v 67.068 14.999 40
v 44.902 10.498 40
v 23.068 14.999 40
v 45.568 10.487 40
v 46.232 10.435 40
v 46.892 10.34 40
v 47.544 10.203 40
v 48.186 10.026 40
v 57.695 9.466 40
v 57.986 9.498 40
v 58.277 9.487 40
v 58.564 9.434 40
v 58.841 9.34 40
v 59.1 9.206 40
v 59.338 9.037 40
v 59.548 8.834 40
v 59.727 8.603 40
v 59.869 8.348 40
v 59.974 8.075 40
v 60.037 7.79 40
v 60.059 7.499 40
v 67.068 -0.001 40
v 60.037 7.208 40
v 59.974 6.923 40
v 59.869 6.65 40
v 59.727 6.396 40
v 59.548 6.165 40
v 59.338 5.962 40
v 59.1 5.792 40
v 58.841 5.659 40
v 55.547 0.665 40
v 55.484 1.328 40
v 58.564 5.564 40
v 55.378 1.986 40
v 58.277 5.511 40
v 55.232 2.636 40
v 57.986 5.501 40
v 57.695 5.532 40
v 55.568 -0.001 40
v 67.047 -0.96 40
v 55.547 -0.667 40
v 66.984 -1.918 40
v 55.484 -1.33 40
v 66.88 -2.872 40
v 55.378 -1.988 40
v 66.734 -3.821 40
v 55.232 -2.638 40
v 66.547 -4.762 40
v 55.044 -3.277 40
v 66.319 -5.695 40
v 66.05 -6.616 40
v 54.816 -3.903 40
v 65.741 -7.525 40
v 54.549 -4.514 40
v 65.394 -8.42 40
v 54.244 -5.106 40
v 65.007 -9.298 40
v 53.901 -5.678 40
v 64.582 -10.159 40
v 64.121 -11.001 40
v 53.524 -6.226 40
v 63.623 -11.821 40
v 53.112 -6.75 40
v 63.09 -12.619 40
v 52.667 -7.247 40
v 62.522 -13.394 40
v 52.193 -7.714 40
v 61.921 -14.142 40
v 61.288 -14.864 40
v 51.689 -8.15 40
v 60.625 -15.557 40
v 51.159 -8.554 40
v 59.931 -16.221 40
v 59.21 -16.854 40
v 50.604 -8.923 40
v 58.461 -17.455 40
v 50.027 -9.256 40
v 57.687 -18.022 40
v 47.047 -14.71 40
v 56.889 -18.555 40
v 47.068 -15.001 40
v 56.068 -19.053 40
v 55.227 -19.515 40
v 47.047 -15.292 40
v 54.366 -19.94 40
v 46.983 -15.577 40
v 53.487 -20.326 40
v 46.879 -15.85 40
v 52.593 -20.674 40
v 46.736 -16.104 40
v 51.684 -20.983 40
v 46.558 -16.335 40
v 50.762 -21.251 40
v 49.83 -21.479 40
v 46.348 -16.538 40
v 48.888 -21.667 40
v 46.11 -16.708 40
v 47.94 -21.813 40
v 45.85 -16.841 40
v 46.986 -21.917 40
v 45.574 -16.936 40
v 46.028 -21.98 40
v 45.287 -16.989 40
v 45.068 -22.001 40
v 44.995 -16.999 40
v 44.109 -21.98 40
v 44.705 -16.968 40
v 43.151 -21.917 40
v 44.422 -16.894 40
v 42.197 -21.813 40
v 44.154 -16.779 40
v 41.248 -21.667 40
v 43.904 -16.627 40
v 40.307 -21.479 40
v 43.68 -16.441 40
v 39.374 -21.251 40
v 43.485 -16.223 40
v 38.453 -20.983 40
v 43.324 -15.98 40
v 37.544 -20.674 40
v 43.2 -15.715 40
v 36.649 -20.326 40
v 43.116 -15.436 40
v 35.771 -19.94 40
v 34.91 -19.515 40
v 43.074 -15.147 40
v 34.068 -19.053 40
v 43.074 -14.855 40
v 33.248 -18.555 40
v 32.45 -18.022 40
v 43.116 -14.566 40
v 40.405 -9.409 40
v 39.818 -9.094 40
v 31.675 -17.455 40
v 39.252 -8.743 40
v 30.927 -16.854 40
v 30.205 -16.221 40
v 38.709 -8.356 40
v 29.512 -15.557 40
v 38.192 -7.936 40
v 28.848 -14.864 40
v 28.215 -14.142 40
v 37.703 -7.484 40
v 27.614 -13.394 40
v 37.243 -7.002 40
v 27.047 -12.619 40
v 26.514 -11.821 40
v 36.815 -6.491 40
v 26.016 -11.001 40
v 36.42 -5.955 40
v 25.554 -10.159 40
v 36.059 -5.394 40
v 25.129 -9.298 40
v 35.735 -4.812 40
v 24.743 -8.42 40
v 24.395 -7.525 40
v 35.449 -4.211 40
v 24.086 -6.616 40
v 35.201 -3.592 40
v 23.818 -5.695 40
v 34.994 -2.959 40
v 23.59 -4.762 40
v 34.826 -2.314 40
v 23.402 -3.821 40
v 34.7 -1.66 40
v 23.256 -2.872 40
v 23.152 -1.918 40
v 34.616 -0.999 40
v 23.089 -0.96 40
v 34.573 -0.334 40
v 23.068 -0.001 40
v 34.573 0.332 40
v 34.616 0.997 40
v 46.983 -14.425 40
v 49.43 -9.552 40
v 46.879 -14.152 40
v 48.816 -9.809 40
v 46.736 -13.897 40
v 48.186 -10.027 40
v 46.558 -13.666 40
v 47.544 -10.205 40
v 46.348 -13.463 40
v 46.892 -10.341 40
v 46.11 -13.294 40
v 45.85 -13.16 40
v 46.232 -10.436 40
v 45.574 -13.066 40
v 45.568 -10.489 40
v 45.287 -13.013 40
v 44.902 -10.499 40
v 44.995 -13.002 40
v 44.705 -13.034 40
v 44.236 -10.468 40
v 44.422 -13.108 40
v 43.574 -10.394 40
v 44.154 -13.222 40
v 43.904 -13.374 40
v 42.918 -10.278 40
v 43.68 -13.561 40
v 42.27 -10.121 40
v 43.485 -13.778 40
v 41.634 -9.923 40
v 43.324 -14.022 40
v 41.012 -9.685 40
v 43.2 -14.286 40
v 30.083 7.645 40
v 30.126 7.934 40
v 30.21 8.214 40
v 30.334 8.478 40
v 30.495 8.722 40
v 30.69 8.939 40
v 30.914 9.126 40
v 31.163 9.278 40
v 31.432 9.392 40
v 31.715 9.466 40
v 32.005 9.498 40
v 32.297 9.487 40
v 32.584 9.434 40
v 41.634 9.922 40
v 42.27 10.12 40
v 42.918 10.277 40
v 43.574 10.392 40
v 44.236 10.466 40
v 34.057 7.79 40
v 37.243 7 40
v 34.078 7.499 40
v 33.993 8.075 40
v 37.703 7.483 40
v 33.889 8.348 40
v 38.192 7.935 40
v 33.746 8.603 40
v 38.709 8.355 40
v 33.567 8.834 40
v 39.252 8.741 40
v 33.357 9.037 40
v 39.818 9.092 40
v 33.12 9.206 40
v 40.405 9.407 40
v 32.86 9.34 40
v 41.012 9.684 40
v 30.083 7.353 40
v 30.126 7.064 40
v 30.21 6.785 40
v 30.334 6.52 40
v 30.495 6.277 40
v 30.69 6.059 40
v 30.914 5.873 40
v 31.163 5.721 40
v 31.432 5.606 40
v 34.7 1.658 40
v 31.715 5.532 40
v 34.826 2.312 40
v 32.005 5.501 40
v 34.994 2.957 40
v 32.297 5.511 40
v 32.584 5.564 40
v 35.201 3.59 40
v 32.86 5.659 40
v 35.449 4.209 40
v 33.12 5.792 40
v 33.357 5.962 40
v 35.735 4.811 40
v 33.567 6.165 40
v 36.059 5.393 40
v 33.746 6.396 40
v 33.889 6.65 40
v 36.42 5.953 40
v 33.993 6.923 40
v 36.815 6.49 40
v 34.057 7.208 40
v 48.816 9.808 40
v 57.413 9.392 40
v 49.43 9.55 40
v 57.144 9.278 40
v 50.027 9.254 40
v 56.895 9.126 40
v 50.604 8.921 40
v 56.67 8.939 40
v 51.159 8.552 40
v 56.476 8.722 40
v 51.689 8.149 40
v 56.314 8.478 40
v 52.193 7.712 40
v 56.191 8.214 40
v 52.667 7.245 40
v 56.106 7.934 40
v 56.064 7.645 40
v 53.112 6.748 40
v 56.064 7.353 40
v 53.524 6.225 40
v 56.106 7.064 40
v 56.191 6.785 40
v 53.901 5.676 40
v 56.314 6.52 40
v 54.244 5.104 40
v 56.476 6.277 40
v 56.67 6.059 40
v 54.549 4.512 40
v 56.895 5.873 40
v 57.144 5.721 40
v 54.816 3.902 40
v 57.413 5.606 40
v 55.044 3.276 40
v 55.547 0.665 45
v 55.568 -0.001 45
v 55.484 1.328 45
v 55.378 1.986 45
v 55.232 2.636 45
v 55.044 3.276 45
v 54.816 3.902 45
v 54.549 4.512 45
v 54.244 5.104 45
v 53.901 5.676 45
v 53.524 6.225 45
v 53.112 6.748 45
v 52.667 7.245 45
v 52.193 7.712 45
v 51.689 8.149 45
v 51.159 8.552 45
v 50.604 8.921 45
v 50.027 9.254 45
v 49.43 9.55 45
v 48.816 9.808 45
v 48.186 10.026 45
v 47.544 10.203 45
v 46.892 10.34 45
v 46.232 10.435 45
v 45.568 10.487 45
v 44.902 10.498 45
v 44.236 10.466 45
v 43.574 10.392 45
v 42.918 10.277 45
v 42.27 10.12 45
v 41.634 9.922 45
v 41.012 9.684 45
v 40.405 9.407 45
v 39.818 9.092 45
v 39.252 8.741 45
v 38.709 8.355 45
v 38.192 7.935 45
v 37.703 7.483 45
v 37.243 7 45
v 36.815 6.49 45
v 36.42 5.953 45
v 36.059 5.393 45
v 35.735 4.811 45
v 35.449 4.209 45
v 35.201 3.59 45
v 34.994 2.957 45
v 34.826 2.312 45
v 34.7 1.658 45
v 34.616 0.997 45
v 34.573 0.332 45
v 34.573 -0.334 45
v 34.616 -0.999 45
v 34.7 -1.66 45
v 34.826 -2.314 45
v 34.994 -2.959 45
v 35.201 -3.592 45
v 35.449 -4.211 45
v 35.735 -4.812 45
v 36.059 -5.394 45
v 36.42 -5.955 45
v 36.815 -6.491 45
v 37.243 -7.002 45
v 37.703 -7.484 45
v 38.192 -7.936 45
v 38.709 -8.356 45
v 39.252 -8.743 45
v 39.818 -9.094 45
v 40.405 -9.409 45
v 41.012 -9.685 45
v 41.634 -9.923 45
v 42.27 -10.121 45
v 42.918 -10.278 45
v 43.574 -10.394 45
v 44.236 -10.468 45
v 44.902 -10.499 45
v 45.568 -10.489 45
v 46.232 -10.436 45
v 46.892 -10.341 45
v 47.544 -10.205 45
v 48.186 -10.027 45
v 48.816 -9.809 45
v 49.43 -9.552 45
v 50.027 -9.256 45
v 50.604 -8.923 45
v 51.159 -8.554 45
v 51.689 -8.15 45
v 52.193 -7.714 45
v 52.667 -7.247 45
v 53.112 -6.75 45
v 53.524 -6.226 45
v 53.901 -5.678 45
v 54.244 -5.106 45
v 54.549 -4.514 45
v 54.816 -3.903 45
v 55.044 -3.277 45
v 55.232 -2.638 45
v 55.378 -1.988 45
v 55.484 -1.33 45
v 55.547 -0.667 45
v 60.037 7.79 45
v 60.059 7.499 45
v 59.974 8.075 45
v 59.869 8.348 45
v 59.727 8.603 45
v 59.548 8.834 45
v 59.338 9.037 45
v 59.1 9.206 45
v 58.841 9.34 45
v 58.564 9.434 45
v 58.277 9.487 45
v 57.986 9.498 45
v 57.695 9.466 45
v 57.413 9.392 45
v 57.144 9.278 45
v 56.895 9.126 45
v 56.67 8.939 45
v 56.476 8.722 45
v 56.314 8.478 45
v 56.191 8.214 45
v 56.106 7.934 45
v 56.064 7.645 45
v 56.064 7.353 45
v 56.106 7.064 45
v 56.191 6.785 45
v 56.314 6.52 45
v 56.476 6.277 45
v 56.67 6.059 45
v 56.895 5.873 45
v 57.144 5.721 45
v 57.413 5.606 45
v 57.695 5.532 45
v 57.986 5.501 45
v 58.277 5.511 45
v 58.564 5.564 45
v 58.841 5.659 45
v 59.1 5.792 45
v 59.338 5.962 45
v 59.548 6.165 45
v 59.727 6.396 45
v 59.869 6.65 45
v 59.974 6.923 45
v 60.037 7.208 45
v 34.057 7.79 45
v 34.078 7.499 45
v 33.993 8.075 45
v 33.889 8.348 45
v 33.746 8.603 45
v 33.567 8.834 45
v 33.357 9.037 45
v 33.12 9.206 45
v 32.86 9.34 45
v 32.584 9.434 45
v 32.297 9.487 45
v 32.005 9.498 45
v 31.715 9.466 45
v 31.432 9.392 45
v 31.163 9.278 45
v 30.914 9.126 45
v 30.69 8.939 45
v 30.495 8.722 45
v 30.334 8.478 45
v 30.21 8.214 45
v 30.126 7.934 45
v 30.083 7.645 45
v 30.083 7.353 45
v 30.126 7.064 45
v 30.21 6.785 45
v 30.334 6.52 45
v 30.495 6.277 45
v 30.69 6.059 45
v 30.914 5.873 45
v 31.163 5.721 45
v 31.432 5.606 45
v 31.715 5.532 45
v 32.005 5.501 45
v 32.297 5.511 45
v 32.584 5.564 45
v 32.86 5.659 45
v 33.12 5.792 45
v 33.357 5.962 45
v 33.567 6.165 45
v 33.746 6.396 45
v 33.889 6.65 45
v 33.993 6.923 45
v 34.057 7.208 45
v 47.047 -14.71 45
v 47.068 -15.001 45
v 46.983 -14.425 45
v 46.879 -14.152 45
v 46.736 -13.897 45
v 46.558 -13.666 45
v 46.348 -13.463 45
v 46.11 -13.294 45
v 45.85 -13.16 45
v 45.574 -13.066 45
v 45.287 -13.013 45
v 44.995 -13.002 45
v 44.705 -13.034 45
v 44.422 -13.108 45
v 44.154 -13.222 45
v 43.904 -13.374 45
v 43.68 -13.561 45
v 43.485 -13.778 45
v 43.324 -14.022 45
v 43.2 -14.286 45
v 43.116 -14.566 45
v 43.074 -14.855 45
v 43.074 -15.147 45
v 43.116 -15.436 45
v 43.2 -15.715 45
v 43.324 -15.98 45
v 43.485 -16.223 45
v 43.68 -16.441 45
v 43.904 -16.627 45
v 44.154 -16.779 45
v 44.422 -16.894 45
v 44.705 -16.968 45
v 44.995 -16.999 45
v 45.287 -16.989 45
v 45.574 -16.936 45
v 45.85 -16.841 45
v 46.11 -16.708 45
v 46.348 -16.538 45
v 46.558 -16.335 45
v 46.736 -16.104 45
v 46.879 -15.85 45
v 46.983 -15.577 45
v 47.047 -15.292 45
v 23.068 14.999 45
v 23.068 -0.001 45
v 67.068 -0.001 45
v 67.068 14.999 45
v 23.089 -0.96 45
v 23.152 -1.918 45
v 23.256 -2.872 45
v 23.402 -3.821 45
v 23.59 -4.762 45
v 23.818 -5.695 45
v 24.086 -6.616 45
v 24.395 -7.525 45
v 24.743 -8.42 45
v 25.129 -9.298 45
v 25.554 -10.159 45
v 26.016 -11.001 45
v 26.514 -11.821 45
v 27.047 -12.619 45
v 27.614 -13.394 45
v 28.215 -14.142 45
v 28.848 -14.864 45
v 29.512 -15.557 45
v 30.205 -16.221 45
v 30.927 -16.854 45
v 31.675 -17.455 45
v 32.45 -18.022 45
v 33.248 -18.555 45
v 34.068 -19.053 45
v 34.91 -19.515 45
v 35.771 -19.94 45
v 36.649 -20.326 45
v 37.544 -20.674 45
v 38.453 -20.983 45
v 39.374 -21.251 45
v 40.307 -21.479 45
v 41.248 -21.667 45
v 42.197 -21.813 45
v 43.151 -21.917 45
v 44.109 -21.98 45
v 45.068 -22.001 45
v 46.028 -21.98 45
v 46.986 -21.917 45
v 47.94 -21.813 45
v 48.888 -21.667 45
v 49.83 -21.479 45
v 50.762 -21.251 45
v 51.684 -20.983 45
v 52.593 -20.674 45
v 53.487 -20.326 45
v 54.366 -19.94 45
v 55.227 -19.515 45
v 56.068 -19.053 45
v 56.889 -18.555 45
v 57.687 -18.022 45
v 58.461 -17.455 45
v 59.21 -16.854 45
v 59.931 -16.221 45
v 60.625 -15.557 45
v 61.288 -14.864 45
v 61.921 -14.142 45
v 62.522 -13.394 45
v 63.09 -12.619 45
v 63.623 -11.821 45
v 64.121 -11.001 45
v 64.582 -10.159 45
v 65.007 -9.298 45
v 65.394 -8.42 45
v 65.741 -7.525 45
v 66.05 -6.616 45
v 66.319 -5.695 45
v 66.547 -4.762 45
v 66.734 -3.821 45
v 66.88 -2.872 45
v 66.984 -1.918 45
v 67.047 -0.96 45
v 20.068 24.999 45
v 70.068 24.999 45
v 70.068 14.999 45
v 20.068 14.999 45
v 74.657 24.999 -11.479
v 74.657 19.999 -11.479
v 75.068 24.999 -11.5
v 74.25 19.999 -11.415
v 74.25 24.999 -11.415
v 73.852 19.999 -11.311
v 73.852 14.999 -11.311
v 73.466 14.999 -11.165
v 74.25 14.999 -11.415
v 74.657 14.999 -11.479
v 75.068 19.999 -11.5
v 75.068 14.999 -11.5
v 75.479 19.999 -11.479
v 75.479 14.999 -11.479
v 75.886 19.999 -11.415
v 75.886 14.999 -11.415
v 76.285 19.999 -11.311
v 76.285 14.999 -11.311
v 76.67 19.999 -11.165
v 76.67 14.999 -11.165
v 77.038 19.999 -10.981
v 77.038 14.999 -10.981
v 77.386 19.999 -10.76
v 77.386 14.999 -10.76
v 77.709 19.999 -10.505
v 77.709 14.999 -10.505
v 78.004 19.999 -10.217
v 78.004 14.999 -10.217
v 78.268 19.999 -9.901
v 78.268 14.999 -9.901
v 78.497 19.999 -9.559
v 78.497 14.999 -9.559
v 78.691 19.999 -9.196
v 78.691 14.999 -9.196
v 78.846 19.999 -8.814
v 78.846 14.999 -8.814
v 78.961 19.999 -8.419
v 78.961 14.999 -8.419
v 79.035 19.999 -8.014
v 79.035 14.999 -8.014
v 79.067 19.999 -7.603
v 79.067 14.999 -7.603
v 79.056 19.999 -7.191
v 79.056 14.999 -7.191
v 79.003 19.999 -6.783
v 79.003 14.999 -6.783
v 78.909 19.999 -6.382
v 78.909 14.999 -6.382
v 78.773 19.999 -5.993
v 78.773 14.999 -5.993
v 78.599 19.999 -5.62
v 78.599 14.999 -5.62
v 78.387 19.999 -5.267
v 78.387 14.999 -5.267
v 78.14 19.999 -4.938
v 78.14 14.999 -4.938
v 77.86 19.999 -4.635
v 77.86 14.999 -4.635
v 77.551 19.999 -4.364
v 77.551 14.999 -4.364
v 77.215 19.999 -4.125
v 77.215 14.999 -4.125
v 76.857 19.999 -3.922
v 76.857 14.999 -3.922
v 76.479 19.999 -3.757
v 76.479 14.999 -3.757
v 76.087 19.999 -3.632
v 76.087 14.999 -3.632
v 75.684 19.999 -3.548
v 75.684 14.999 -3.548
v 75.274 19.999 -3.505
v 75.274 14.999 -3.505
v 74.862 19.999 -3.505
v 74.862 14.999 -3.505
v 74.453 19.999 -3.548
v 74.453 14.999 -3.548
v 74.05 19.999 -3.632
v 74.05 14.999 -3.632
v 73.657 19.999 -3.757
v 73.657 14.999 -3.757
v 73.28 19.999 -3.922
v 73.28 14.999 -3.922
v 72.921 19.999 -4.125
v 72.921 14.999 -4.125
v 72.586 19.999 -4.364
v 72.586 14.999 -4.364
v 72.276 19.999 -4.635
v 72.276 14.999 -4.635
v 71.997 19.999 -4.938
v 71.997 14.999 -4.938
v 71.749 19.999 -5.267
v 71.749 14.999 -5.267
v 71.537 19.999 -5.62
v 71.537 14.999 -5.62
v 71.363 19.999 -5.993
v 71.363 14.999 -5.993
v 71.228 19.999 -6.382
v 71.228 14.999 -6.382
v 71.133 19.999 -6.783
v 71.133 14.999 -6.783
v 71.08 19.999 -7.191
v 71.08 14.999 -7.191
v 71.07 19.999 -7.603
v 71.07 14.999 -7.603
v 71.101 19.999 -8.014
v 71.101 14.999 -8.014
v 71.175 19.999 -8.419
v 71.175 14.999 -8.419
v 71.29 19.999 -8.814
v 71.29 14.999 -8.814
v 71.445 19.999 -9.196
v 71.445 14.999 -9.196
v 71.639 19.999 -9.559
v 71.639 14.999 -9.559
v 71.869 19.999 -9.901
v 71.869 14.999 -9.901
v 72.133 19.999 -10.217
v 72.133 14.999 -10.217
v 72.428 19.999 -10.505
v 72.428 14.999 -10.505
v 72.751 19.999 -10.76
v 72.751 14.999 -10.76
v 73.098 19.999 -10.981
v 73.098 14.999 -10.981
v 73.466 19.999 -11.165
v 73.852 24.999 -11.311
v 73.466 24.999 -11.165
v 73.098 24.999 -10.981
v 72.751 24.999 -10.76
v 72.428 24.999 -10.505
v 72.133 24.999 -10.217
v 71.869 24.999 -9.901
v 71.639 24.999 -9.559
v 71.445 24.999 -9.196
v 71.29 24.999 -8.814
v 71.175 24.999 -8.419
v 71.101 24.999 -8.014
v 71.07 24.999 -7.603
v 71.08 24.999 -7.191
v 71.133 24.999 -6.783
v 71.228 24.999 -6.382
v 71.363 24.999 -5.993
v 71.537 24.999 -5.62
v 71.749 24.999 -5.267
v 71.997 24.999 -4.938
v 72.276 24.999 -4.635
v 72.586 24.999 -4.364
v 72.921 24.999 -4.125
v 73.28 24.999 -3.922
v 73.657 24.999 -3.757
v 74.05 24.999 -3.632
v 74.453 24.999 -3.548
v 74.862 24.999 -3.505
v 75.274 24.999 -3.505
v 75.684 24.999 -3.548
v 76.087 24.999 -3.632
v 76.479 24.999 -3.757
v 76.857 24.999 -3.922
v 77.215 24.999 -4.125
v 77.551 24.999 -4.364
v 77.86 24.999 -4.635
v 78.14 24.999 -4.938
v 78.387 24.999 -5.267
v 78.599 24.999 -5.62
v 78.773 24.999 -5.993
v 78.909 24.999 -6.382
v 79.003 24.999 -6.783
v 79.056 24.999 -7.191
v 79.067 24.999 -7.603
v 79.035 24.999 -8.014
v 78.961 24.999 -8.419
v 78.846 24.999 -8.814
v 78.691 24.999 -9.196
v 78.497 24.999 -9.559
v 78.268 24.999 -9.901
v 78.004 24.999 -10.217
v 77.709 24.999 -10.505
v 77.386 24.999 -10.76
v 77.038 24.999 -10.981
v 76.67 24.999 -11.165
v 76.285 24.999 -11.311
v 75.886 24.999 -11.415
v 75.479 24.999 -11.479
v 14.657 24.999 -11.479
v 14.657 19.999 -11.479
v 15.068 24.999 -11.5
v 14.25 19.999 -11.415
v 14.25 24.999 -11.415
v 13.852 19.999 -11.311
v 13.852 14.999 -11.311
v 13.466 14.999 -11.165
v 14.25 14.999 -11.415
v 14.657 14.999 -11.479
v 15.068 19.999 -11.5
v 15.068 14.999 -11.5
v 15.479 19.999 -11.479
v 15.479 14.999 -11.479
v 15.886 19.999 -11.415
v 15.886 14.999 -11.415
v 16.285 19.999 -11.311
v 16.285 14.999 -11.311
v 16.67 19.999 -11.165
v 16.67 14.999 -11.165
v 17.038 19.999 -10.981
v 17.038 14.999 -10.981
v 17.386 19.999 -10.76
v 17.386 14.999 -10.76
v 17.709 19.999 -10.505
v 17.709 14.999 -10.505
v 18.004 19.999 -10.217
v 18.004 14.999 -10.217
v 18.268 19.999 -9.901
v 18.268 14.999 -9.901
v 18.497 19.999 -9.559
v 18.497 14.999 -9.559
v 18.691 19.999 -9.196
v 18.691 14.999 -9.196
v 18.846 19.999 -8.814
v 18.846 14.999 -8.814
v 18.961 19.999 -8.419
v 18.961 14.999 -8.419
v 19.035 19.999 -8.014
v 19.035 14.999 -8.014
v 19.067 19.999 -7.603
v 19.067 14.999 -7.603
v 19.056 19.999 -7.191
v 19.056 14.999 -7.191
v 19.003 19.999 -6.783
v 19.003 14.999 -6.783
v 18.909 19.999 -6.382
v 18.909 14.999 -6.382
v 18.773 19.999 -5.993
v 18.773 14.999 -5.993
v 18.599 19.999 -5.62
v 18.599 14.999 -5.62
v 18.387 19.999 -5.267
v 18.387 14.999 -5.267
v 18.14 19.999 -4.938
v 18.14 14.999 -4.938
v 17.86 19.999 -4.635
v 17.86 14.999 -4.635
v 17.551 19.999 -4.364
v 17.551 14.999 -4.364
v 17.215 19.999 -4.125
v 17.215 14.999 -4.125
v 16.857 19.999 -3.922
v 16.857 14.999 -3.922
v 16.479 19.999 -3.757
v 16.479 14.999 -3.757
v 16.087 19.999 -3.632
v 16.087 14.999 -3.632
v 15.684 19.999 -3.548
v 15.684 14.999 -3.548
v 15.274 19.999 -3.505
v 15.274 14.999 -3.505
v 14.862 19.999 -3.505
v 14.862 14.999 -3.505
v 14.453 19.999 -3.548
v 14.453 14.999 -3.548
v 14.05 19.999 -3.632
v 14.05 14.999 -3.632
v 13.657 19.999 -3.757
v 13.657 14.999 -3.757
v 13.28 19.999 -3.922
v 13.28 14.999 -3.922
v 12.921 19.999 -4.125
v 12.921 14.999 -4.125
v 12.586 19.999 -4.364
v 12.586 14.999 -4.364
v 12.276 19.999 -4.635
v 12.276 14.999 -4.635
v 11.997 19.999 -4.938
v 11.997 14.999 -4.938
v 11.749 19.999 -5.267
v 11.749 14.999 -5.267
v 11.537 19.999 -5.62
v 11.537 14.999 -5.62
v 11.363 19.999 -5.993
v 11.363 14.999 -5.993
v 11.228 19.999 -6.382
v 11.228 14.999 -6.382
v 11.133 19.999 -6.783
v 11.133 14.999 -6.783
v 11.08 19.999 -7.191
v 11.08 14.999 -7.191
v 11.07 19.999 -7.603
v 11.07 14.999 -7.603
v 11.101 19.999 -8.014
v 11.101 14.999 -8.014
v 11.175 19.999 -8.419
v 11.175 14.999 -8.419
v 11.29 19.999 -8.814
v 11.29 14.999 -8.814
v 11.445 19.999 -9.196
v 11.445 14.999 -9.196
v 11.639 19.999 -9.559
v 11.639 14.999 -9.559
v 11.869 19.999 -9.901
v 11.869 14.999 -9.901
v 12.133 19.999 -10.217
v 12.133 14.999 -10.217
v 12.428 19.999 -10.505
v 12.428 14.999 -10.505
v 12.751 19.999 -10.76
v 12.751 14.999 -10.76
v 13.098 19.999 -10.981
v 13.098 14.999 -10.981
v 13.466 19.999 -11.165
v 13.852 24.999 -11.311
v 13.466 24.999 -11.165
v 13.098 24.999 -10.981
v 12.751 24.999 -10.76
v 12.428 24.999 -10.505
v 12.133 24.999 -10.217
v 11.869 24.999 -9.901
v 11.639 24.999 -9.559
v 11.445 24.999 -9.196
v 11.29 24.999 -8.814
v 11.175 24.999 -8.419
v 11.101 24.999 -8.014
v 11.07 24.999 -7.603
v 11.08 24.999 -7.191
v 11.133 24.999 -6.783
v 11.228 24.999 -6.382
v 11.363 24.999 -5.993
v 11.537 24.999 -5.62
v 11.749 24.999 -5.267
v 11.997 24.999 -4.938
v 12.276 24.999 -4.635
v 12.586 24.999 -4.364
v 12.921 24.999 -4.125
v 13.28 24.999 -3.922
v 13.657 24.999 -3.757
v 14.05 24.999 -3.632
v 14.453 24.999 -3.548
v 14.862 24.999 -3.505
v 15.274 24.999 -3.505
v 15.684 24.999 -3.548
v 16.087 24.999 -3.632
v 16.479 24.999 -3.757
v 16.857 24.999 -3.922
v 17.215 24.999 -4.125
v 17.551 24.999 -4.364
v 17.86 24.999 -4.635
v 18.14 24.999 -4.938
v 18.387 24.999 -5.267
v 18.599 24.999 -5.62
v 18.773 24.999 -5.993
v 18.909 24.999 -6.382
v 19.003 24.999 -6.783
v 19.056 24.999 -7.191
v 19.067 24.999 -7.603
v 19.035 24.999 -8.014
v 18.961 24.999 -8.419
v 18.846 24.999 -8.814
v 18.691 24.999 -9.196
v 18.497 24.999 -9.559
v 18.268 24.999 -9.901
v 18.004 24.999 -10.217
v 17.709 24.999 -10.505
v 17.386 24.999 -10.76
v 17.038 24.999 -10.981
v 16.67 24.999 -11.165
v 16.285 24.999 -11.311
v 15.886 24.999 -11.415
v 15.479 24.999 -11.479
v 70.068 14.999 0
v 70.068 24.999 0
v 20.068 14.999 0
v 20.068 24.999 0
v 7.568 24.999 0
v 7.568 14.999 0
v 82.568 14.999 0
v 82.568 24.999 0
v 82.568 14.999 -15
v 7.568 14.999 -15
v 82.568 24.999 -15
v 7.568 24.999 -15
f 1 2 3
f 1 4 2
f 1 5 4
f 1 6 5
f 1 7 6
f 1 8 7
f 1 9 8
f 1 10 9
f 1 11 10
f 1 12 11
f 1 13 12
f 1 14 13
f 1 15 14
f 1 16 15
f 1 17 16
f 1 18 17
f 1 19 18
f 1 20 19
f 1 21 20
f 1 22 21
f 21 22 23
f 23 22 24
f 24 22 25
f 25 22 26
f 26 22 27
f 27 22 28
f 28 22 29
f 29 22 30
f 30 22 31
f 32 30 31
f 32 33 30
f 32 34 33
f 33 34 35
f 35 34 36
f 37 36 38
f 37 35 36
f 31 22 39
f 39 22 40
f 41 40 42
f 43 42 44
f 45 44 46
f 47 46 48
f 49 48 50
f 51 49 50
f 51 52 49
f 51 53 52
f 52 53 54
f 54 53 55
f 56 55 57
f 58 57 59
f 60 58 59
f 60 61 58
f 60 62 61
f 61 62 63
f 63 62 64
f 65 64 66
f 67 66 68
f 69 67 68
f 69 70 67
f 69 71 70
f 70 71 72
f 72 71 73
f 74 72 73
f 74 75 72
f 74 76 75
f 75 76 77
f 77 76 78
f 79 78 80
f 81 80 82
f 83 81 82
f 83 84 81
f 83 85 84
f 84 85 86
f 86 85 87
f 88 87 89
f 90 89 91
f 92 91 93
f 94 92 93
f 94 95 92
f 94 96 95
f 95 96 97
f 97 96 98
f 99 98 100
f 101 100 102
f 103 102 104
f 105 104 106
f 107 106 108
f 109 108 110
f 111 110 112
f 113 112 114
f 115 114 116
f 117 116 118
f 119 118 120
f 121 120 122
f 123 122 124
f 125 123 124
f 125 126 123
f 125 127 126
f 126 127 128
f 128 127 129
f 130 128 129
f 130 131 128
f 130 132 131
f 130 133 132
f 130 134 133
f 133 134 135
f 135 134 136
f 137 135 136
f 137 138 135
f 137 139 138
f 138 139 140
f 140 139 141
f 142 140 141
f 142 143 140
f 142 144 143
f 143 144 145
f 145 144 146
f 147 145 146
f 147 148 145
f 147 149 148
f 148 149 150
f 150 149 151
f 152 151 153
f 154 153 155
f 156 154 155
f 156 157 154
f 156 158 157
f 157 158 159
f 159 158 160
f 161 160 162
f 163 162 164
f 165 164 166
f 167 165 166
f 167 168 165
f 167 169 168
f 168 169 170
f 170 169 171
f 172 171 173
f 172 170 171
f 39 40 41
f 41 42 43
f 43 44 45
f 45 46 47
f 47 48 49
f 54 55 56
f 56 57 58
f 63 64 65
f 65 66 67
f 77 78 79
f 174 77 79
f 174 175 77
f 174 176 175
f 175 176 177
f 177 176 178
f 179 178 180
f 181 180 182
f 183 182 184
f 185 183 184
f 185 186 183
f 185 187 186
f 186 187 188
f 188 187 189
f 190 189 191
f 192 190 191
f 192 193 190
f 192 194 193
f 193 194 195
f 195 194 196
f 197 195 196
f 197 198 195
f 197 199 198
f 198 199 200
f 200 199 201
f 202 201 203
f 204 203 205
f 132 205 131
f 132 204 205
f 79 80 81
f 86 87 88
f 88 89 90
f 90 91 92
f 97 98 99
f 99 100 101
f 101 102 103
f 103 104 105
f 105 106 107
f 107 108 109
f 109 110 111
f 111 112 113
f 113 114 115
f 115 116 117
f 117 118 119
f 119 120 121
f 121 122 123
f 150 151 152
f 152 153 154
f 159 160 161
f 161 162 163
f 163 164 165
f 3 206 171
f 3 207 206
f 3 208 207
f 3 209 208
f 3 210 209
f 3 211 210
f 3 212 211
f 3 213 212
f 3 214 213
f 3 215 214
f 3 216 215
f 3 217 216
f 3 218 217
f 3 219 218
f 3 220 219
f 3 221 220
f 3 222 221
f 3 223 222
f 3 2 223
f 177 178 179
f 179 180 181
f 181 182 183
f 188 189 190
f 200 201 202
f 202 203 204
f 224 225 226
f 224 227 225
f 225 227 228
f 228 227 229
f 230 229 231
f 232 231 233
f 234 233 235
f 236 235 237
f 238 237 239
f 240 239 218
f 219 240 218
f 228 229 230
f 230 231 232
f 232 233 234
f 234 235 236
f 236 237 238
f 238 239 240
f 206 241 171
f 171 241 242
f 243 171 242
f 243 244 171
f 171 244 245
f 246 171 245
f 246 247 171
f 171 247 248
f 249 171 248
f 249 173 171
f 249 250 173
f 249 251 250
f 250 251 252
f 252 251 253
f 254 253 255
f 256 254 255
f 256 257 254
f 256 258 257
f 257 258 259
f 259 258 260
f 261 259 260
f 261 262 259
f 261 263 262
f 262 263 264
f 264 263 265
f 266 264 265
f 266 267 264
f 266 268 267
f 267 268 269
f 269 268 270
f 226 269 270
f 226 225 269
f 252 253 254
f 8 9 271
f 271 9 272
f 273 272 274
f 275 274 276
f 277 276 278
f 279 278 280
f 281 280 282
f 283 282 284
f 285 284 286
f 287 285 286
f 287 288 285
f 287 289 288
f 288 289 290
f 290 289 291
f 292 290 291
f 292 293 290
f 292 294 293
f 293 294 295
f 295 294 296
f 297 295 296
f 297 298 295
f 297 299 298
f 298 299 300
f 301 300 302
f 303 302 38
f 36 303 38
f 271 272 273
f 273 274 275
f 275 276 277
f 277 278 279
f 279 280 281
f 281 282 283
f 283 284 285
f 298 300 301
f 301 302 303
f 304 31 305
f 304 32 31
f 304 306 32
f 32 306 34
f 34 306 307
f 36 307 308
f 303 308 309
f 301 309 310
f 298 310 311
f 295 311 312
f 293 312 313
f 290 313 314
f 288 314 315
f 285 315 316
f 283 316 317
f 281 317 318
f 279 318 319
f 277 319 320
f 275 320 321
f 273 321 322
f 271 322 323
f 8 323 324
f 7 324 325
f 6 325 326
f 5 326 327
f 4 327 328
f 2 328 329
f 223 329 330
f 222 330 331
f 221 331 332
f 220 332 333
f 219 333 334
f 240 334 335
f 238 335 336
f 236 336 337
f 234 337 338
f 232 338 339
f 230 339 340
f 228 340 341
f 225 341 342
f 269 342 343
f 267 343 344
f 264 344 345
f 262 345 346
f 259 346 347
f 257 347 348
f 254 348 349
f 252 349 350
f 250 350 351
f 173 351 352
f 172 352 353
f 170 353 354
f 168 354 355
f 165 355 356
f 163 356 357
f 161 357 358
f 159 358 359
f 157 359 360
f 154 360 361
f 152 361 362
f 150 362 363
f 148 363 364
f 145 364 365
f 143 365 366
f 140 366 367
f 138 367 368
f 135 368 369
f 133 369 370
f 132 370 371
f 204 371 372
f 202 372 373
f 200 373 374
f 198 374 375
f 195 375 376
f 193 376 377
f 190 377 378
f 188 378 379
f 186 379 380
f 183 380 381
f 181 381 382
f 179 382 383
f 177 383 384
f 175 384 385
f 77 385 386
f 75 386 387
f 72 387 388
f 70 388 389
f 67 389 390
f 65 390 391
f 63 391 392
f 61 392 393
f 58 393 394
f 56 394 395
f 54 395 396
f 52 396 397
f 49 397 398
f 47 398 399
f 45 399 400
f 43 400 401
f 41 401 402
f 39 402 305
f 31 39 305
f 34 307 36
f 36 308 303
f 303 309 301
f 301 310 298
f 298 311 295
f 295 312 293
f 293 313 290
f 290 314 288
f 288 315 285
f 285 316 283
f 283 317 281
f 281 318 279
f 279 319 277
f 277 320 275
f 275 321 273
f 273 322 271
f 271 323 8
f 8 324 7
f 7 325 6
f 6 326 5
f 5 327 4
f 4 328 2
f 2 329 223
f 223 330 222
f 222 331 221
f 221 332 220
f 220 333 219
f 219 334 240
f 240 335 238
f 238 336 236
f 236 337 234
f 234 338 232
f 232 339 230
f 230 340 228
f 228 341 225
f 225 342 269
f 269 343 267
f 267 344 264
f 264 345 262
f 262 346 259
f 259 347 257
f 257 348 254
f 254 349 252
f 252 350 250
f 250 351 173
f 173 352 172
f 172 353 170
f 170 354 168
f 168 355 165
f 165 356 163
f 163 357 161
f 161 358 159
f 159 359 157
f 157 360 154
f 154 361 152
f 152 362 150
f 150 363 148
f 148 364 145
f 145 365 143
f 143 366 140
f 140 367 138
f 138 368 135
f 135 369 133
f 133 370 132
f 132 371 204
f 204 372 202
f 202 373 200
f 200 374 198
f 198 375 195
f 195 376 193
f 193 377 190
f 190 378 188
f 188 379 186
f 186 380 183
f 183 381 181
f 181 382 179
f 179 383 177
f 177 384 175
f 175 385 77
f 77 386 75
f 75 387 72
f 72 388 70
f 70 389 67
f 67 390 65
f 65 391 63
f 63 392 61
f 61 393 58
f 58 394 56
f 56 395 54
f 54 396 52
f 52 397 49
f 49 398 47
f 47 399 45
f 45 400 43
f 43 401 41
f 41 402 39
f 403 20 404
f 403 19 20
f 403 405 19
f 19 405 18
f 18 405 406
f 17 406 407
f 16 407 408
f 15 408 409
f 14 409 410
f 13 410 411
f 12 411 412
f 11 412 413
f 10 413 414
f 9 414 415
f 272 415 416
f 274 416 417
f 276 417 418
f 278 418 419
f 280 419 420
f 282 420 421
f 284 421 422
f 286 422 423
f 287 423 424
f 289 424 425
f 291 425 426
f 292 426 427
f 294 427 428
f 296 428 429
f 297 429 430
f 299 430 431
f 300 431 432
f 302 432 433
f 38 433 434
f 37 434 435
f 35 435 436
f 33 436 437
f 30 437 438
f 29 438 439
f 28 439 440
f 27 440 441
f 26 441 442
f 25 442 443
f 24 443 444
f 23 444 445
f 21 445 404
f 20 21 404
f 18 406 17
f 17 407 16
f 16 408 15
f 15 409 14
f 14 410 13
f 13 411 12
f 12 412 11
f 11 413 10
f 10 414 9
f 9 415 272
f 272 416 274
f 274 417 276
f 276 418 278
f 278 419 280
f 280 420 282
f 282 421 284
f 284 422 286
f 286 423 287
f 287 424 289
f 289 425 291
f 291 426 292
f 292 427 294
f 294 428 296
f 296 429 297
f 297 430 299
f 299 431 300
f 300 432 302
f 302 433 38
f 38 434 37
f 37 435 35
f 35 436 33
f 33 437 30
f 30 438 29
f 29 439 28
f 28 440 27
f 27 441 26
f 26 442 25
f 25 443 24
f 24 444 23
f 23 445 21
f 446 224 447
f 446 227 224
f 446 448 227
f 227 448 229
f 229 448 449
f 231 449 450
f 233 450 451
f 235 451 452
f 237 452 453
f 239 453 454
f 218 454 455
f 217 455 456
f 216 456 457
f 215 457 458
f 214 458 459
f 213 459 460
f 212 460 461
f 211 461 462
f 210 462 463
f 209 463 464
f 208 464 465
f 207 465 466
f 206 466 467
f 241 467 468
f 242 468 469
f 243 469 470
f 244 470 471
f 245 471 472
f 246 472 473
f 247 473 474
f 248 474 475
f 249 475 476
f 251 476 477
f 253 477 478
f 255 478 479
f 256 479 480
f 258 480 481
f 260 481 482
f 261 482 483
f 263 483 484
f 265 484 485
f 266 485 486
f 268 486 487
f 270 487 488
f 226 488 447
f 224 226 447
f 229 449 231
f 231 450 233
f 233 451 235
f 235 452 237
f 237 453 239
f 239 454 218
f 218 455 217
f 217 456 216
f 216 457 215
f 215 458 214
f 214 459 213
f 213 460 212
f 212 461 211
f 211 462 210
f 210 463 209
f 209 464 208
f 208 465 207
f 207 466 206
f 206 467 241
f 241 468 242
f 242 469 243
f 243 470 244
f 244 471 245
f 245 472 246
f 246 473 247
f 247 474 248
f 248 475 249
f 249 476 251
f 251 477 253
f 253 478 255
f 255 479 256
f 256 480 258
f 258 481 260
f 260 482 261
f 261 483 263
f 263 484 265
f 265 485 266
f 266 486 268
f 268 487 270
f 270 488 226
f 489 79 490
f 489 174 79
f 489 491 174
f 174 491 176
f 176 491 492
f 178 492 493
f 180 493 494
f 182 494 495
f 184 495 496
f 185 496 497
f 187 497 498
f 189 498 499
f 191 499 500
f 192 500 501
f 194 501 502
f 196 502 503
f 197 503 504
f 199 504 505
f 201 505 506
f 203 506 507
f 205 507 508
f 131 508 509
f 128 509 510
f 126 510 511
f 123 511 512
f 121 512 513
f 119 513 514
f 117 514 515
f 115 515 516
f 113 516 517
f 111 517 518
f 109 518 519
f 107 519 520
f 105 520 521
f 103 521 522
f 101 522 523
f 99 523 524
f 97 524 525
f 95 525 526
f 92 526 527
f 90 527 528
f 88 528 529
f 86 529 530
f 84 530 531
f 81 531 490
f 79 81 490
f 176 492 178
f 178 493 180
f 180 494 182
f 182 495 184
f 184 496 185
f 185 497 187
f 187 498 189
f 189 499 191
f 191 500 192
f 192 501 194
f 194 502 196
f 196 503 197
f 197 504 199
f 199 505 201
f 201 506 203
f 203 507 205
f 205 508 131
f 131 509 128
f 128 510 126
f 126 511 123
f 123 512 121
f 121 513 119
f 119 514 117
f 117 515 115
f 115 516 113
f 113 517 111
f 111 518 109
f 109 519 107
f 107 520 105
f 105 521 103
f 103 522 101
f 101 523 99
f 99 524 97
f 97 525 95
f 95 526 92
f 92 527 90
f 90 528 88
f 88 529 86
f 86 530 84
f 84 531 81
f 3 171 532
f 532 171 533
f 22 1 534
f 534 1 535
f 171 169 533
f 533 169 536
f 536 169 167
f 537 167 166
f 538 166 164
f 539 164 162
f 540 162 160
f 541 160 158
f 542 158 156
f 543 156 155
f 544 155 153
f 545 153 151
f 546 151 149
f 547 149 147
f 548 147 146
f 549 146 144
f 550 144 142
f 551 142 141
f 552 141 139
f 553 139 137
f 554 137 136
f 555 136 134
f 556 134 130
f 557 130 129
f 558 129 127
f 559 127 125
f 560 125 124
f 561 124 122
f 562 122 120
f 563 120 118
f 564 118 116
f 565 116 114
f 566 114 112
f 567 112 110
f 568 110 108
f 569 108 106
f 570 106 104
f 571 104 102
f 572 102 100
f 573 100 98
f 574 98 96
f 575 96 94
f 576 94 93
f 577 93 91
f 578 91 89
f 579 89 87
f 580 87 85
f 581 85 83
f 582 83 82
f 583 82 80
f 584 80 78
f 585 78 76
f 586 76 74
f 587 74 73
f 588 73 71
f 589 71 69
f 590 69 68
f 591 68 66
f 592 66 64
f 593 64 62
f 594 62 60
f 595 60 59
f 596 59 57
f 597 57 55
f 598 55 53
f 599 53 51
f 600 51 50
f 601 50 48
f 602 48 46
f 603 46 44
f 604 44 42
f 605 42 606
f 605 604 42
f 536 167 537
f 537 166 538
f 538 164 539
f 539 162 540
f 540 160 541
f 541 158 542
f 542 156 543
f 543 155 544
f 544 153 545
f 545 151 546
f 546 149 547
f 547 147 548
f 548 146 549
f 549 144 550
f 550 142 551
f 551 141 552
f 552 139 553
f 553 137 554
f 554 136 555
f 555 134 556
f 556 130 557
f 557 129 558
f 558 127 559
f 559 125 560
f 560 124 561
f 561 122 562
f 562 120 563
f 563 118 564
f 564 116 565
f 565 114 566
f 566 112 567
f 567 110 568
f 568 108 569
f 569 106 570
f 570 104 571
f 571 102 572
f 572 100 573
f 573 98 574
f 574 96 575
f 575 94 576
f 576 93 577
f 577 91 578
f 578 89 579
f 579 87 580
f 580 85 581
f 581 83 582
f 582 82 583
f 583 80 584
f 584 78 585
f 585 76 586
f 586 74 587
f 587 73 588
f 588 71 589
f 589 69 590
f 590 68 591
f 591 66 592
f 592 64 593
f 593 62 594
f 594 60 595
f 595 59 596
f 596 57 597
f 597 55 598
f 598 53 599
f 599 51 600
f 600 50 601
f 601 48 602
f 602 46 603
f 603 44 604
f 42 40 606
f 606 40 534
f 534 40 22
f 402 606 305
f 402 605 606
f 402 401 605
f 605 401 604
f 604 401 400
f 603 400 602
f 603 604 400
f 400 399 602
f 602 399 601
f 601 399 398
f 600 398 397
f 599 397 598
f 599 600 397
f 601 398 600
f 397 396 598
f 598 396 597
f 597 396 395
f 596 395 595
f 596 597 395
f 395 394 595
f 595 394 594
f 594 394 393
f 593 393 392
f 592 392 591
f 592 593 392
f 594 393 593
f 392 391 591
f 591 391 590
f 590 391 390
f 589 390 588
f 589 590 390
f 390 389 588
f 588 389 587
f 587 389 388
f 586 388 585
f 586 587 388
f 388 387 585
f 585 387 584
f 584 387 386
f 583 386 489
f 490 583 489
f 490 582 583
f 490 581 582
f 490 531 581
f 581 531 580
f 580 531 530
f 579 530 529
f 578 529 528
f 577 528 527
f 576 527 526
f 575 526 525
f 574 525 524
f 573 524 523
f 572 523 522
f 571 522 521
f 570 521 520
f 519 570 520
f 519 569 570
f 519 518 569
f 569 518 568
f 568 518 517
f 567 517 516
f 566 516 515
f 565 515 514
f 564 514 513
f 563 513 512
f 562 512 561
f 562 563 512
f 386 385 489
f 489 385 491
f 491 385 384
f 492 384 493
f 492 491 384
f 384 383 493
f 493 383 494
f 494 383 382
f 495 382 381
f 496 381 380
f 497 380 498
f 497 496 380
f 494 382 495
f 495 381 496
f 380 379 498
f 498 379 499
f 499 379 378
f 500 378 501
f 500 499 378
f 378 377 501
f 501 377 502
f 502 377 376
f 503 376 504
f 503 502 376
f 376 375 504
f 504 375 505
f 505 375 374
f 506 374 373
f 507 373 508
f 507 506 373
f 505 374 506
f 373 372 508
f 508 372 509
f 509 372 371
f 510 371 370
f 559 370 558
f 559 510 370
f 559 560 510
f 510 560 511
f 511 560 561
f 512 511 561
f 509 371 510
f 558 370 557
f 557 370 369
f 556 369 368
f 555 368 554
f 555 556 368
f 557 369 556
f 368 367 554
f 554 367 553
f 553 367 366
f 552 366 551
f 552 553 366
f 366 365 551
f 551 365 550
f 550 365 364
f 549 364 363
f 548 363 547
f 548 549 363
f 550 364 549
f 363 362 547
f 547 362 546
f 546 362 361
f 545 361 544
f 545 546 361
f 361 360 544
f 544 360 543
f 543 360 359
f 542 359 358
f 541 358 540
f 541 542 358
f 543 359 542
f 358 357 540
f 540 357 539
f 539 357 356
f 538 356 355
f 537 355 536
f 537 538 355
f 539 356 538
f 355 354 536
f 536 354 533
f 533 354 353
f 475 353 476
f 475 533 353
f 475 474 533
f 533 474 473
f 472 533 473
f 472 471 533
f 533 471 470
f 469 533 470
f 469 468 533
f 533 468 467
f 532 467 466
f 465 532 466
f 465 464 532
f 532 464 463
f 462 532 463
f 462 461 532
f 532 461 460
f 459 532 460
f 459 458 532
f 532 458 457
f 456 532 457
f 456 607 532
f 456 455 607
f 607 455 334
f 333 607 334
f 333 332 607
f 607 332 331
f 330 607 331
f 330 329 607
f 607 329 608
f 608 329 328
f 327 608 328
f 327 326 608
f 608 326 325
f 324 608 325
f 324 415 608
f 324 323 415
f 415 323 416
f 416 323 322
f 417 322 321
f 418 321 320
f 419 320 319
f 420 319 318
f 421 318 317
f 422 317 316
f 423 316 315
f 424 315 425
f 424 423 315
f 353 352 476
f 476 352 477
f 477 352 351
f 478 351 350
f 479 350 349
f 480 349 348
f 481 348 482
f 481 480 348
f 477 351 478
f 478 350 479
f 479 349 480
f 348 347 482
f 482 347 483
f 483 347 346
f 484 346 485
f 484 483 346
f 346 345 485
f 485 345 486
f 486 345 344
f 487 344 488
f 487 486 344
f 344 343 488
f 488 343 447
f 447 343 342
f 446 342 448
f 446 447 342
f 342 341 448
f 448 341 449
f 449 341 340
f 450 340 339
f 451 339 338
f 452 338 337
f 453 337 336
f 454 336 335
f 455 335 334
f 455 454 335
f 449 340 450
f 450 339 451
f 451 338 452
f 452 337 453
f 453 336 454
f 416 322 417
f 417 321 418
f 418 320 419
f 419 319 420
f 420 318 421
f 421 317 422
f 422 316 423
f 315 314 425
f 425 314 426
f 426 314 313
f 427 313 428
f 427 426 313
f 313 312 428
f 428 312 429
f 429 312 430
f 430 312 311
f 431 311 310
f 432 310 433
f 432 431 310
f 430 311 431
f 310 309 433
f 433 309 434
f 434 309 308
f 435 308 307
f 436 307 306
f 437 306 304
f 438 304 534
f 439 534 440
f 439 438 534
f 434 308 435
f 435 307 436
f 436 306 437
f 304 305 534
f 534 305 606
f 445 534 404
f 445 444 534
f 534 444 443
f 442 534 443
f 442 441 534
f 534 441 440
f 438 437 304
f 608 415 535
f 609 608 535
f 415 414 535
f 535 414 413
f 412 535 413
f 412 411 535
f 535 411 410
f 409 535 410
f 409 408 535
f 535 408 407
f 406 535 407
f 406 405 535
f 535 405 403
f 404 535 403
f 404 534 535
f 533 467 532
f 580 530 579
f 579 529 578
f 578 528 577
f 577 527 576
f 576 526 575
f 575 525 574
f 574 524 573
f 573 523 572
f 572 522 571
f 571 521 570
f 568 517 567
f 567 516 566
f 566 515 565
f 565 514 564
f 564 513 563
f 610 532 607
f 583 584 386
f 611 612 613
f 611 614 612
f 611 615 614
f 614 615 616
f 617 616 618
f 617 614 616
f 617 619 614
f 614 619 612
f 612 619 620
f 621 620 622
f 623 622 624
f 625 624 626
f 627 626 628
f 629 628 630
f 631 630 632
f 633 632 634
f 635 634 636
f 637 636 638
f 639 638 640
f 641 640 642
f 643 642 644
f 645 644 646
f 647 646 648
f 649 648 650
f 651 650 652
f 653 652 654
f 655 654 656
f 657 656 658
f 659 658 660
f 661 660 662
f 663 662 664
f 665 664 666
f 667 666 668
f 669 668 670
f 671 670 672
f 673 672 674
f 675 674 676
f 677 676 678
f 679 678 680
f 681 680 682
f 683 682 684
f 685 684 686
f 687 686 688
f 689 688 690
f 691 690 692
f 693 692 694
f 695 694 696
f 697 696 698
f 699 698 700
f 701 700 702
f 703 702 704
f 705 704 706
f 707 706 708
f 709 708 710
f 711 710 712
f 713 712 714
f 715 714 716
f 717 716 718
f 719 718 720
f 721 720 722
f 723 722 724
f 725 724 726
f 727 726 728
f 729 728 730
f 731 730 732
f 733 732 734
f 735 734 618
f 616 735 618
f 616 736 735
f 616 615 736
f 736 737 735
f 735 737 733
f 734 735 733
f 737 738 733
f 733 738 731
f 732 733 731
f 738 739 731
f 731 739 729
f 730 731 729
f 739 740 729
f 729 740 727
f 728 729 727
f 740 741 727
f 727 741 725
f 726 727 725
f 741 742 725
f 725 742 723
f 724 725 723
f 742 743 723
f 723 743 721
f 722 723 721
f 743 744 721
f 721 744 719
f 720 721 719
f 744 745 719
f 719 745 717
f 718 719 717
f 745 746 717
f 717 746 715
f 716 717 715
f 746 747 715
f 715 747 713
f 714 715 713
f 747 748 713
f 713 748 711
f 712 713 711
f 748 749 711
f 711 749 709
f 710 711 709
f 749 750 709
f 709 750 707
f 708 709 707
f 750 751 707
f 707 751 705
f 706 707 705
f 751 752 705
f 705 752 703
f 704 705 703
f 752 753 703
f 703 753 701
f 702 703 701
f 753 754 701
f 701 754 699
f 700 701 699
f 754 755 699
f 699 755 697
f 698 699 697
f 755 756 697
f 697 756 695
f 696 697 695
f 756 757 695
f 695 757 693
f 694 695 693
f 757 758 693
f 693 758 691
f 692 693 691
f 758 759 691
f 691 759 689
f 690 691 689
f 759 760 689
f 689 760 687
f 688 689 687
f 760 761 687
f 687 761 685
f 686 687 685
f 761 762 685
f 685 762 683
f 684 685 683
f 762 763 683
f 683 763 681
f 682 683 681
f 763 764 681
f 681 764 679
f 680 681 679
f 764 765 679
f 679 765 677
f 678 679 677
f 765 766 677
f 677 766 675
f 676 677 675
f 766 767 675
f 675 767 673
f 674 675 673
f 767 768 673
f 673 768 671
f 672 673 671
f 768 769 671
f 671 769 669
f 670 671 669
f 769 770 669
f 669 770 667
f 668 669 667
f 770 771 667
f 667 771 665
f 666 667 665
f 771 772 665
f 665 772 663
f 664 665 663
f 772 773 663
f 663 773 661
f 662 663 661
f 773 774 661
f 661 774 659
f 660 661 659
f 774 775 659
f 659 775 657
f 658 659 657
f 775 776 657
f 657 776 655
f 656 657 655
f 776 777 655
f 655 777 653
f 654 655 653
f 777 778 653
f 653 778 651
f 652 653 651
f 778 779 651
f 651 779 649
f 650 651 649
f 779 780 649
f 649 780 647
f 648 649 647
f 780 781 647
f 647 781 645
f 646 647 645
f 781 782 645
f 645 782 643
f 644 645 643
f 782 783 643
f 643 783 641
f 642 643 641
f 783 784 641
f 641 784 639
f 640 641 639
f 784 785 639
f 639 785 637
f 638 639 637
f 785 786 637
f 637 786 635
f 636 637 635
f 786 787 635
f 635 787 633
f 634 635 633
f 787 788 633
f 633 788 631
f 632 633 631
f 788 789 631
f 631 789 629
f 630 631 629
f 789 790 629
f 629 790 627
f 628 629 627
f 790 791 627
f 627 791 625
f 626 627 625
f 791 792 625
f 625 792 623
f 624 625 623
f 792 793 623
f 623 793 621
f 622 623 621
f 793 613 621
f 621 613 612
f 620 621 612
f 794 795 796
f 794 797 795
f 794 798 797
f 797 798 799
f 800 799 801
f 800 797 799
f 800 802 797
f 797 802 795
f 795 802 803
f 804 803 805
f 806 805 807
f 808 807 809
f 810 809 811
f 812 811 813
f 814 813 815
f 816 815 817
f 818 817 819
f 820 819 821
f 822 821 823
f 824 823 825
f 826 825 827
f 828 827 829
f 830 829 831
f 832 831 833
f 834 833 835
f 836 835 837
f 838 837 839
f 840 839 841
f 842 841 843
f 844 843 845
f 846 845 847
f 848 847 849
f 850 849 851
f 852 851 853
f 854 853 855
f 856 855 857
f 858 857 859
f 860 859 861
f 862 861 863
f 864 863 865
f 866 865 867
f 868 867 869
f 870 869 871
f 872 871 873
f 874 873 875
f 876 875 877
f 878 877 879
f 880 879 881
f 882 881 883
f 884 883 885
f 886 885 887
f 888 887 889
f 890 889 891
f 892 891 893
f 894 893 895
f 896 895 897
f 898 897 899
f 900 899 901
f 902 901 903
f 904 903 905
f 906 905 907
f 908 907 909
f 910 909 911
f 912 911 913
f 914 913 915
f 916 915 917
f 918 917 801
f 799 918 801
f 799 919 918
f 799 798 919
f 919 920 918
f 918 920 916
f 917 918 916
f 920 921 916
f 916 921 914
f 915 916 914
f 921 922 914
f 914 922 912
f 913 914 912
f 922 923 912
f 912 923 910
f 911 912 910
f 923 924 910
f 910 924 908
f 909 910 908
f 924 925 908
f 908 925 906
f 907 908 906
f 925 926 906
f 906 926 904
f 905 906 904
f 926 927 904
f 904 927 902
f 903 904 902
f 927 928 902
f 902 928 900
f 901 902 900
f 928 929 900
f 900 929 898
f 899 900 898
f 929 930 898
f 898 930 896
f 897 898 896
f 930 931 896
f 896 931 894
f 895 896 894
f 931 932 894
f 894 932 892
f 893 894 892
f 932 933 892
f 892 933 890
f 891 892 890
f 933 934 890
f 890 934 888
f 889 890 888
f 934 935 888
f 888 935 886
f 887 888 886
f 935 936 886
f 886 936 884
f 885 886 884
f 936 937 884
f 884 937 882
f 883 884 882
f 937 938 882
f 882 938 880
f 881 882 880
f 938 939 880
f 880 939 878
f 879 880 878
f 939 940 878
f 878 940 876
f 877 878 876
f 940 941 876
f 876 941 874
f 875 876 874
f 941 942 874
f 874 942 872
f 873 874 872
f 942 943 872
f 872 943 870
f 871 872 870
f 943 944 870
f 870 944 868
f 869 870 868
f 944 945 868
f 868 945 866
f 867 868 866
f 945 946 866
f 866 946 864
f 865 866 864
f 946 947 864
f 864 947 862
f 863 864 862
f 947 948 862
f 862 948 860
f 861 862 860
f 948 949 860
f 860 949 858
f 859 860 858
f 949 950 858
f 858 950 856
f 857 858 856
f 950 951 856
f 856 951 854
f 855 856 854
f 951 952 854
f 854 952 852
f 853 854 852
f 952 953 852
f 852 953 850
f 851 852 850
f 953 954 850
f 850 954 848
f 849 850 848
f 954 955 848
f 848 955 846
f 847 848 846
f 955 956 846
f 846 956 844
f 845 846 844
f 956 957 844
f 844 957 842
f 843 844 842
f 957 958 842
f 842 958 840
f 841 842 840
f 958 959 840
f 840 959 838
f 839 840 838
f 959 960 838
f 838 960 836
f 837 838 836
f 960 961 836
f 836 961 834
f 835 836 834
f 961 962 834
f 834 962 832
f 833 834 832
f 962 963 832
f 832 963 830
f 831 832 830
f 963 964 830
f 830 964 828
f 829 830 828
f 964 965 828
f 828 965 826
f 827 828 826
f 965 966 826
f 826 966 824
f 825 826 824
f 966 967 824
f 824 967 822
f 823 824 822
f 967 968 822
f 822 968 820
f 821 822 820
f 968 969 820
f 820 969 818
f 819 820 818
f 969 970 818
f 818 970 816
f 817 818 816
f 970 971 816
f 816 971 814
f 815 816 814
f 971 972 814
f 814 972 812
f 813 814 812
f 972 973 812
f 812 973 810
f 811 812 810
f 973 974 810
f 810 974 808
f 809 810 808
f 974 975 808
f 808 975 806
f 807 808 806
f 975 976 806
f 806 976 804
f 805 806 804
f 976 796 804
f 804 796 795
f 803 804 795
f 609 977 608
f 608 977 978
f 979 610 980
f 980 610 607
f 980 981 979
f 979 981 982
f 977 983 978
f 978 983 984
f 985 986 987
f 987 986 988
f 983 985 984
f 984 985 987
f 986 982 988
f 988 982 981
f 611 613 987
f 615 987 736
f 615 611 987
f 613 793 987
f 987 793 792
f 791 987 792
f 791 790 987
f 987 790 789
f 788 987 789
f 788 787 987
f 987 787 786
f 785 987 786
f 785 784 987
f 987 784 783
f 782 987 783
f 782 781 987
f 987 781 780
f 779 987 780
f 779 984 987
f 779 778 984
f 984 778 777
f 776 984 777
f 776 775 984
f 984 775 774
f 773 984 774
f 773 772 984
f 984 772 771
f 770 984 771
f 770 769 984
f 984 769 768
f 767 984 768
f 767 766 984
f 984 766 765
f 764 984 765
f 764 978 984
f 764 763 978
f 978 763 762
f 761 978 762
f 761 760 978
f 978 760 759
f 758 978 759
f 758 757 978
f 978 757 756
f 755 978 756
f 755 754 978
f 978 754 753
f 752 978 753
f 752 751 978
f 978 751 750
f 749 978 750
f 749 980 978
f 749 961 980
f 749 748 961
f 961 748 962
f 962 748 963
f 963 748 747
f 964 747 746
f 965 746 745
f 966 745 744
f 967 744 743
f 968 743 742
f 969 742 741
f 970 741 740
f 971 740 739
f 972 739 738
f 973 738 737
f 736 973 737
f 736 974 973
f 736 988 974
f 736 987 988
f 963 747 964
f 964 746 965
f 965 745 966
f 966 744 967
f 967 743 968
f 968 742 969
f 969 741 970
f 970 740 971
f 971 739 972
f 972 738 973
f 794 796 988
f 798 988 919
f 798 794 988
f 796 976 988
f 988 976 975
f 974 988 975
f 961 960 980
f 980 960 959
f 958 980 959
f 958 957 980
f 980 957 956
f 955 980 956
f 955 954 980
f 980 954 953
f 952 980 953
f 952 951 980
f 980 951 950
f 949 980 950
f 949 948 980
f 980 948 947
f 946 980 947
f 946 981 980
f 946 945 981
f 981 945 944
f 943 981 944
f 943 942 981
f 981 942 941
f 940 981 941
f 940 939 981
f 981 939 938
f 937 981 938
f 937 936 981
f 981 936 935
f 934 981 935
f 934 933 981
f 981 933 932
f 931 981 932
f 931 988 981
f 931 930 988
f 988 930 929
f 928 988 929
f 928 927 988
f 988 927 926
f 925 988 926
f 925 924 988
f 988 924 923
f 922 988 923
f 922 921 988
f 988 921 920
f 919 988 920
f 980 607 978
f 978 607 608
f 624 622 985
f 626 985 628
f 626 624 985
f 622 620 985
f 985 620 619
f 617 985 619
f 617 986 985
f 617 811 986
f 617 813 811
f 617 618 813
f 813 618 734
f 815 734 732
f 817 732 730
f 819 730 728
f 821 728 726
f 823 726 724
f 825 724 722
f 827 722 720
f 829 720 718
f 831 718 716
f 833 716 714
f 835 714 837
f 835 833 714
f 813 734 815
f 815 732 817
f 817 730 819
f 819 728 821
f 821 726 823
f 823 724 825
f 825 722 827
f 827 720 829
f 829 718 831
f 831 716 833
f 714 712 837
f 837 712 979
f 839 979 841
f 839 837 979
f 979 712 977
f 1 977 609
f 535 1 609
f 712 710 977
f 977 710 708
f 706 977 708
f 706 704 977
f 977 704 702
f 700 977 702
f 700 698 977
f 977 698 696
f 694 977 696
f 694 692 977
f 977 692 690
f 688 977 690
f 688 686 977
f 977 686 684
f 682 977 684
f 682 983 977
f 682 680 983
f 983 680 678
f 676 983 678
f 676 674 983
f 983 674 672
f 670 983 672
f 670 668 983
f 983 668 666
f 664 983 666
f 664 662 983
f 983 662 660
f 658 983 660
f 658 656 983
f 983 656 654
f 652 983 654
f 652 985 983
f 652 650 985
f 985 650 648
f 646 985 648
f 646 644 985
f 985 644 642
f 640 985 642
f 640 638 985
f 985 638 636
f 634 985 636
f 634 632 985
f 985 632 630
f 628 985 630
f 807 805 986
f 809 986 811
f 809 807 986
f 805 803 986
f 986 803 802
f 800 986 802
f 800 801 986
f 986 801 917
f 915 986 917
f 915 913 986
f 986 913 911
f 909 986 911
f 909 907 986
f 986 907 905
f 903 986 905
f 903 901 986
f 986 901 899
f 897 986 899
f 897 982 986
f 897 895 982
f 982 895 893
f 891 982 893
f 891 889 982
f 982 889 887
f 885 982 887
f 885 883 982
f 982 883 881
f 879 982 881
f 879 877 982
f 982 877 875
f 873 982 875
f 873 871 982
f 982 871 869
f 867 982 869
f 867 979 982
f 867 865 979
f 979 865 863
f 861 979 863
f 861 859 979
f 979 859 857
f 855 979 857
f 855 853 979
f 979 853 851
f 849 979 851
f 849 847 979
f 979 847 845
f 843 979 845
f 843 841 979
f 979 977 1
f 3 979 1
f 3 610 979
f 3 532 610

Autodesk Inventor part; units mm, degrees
ref_plane "YZ Plane" through (0, 0, 0) normal (1, 0, 0) x (0, 1, 0)
ref_plane "XZ Plane" through (0, 0, 0) normal (0, 1, 0) x (-1, 0, 0)
ref_plane "XY Plane" through (0, 0, 0) normal (0, 0, 1) x (1, 0, 0)
ref_plane "Work Plane1" through (45.4774, 14.9992, -51) normal (0, 1, 0) x (0, 0, -1)
sketch "Sketch1" plane through (45.4774, 14.9992, -51) normal (0, 1, 0) x (0, 0, -1)
  line L0 (-43.5, 30.4092) -> (-43.5, -29.5908) construction
  line L1 (-36, 37.9092) -> (-51, 37.9092)
  line L2 (-51, 37.9092) -> (-51, -37.0908)
  line L3 (-51, -37.0908) -> (-36, -37.0908)
  line L4 (-36, -37.0908) -> (-36, 37.9092)
  circle A0 centre (-43.5, 30.4092) radius 4
  circle A1 centre (-43.5, -29.5908) radius 4
  line L5 (-51, 25.4092) -> (-91, 25.4092)
  line L6 (-91, 25.4092) -> (-91, -24.5908)
  line L7 (-91, -24.5908) -> (-51, -24.5908)
  line L8 (-51, -24.5908) -> (-51, 25.4092)
  circle A2 centre (93.5, 21.4092) radius 4 projected
  circle A3 centre (93.5, -20.5908) radius 4 projected
  line L9 (51, -30.5908) -> (51, 31.4092) projected
  line L10 (51, 31.4092) -> (86, 31.4092) projected
  line L11 (86, 31.4092) -> (86, -30.5908) projected
  line L12 (86, -30.5908) -> (51, -30.5908) projected
  circle A4 centre (-43.5, 30.4092) radius 4 projected
  circle A5 centre (43.5, -29.5908) radius 4 projected
  circle A6 centre (0, -29.5908) radius 4 projected
  circle A7 centre (0, 30.4092) radius 4 projected
  circle A8 centre (43.5, 30.4092) radius 4 projected
  circle A9 centre (-43.5, -29.5908) radius 4 projected
  line L13 (-36, -34.5908) -> (-36, 35.4092) projected
  line L14 (-36, 35.4092) -> (-8, 35.4092) projected
  line L15 (-8, 35.4092) -> (-8, -34.5908) projected
  line L16 (-8, -34.5908) -> (-36, -34.5908) projected
  line L17 (8, -34.5908) -> (8, 35.4092) projected
  line L18 (8, 35.4092) -> (36, 35.4092) projected
  line L19 (36, 35.4092) -> (36, -34.5908) projected
  line L20 (36, -34.5908) -> (8, -34.5908) projected
  line L21 (-51, -44.5908) -> (101, -44.5908) projected
  line L22 (101, -44.5908) -> (101, 45.4092) projected
  line L23 (101, 45.4092) -> (-51, 45.4092) projected
  line L24 (-51, 45.4092) -> (-51, -44.5908) projected
  point P0 (-51, 0.4092)
  point P1 (-36, 0.4092)
  dimension "d0" = 75
  dimension "d1" = 15
  dimension "d2" = 40
  dimension "d3" = 50
  dimension "d14" = 8
extrude "Extrusion1" add sketch "Sketch1" along normal blind 10 contours L4 L3 L2 L1 | L2 L7 L6 L5
sketch "Sketch2" plane through (20.0682, 14.9992, 40) normal (0, 0, 1) x (1, 0, 0)
  line L0 (0, 0) -> (50, 0) projected
  line L1 (50, 0) -> (50, 10) projected
  line L2 (0, 10) -> (50, 10) projected
  line L3 (0, 0) -> (0, 10) projected
  arc A0 (36, -15) -> (14, -15) centre (25, -15) ccw construction
  arc A1 (3, -15) -> (47, -15) centre (25, -15) ccw
  line L4 (3, -15) -> (3, 0)
  line L5 (47, -15) -> (47, 0)
  circle A2 centre (25, -15) radius 10.5
  circle A3 centre (25, -15) radius 15 construction
  circle A4 centre (25, -30) radius 2
  circle A5 centre (12.0096, -7.5) radius 2
  circle A6 centre (37.9904, -7.5) radius 2
  line L6 (25, -15) -> (25, -30) construction
  line L7 (25, -15) -> (37.9904, -7.5) construction
  line L8 (25, -15) -> (12.0096, -7.5) construction
  point P0 (-20.0682, -14.9992)
  dimension "d6" = 22
  dimension "d7" = 21
  dimension "d8" = 30
  dimension "d9" = 4
  dimension "d10" = 120
  dimension "d11" = 120
extrude "Extrusion2" add sketch "Sketch2" along normal blind 5
properties part number "encoder bracket"
